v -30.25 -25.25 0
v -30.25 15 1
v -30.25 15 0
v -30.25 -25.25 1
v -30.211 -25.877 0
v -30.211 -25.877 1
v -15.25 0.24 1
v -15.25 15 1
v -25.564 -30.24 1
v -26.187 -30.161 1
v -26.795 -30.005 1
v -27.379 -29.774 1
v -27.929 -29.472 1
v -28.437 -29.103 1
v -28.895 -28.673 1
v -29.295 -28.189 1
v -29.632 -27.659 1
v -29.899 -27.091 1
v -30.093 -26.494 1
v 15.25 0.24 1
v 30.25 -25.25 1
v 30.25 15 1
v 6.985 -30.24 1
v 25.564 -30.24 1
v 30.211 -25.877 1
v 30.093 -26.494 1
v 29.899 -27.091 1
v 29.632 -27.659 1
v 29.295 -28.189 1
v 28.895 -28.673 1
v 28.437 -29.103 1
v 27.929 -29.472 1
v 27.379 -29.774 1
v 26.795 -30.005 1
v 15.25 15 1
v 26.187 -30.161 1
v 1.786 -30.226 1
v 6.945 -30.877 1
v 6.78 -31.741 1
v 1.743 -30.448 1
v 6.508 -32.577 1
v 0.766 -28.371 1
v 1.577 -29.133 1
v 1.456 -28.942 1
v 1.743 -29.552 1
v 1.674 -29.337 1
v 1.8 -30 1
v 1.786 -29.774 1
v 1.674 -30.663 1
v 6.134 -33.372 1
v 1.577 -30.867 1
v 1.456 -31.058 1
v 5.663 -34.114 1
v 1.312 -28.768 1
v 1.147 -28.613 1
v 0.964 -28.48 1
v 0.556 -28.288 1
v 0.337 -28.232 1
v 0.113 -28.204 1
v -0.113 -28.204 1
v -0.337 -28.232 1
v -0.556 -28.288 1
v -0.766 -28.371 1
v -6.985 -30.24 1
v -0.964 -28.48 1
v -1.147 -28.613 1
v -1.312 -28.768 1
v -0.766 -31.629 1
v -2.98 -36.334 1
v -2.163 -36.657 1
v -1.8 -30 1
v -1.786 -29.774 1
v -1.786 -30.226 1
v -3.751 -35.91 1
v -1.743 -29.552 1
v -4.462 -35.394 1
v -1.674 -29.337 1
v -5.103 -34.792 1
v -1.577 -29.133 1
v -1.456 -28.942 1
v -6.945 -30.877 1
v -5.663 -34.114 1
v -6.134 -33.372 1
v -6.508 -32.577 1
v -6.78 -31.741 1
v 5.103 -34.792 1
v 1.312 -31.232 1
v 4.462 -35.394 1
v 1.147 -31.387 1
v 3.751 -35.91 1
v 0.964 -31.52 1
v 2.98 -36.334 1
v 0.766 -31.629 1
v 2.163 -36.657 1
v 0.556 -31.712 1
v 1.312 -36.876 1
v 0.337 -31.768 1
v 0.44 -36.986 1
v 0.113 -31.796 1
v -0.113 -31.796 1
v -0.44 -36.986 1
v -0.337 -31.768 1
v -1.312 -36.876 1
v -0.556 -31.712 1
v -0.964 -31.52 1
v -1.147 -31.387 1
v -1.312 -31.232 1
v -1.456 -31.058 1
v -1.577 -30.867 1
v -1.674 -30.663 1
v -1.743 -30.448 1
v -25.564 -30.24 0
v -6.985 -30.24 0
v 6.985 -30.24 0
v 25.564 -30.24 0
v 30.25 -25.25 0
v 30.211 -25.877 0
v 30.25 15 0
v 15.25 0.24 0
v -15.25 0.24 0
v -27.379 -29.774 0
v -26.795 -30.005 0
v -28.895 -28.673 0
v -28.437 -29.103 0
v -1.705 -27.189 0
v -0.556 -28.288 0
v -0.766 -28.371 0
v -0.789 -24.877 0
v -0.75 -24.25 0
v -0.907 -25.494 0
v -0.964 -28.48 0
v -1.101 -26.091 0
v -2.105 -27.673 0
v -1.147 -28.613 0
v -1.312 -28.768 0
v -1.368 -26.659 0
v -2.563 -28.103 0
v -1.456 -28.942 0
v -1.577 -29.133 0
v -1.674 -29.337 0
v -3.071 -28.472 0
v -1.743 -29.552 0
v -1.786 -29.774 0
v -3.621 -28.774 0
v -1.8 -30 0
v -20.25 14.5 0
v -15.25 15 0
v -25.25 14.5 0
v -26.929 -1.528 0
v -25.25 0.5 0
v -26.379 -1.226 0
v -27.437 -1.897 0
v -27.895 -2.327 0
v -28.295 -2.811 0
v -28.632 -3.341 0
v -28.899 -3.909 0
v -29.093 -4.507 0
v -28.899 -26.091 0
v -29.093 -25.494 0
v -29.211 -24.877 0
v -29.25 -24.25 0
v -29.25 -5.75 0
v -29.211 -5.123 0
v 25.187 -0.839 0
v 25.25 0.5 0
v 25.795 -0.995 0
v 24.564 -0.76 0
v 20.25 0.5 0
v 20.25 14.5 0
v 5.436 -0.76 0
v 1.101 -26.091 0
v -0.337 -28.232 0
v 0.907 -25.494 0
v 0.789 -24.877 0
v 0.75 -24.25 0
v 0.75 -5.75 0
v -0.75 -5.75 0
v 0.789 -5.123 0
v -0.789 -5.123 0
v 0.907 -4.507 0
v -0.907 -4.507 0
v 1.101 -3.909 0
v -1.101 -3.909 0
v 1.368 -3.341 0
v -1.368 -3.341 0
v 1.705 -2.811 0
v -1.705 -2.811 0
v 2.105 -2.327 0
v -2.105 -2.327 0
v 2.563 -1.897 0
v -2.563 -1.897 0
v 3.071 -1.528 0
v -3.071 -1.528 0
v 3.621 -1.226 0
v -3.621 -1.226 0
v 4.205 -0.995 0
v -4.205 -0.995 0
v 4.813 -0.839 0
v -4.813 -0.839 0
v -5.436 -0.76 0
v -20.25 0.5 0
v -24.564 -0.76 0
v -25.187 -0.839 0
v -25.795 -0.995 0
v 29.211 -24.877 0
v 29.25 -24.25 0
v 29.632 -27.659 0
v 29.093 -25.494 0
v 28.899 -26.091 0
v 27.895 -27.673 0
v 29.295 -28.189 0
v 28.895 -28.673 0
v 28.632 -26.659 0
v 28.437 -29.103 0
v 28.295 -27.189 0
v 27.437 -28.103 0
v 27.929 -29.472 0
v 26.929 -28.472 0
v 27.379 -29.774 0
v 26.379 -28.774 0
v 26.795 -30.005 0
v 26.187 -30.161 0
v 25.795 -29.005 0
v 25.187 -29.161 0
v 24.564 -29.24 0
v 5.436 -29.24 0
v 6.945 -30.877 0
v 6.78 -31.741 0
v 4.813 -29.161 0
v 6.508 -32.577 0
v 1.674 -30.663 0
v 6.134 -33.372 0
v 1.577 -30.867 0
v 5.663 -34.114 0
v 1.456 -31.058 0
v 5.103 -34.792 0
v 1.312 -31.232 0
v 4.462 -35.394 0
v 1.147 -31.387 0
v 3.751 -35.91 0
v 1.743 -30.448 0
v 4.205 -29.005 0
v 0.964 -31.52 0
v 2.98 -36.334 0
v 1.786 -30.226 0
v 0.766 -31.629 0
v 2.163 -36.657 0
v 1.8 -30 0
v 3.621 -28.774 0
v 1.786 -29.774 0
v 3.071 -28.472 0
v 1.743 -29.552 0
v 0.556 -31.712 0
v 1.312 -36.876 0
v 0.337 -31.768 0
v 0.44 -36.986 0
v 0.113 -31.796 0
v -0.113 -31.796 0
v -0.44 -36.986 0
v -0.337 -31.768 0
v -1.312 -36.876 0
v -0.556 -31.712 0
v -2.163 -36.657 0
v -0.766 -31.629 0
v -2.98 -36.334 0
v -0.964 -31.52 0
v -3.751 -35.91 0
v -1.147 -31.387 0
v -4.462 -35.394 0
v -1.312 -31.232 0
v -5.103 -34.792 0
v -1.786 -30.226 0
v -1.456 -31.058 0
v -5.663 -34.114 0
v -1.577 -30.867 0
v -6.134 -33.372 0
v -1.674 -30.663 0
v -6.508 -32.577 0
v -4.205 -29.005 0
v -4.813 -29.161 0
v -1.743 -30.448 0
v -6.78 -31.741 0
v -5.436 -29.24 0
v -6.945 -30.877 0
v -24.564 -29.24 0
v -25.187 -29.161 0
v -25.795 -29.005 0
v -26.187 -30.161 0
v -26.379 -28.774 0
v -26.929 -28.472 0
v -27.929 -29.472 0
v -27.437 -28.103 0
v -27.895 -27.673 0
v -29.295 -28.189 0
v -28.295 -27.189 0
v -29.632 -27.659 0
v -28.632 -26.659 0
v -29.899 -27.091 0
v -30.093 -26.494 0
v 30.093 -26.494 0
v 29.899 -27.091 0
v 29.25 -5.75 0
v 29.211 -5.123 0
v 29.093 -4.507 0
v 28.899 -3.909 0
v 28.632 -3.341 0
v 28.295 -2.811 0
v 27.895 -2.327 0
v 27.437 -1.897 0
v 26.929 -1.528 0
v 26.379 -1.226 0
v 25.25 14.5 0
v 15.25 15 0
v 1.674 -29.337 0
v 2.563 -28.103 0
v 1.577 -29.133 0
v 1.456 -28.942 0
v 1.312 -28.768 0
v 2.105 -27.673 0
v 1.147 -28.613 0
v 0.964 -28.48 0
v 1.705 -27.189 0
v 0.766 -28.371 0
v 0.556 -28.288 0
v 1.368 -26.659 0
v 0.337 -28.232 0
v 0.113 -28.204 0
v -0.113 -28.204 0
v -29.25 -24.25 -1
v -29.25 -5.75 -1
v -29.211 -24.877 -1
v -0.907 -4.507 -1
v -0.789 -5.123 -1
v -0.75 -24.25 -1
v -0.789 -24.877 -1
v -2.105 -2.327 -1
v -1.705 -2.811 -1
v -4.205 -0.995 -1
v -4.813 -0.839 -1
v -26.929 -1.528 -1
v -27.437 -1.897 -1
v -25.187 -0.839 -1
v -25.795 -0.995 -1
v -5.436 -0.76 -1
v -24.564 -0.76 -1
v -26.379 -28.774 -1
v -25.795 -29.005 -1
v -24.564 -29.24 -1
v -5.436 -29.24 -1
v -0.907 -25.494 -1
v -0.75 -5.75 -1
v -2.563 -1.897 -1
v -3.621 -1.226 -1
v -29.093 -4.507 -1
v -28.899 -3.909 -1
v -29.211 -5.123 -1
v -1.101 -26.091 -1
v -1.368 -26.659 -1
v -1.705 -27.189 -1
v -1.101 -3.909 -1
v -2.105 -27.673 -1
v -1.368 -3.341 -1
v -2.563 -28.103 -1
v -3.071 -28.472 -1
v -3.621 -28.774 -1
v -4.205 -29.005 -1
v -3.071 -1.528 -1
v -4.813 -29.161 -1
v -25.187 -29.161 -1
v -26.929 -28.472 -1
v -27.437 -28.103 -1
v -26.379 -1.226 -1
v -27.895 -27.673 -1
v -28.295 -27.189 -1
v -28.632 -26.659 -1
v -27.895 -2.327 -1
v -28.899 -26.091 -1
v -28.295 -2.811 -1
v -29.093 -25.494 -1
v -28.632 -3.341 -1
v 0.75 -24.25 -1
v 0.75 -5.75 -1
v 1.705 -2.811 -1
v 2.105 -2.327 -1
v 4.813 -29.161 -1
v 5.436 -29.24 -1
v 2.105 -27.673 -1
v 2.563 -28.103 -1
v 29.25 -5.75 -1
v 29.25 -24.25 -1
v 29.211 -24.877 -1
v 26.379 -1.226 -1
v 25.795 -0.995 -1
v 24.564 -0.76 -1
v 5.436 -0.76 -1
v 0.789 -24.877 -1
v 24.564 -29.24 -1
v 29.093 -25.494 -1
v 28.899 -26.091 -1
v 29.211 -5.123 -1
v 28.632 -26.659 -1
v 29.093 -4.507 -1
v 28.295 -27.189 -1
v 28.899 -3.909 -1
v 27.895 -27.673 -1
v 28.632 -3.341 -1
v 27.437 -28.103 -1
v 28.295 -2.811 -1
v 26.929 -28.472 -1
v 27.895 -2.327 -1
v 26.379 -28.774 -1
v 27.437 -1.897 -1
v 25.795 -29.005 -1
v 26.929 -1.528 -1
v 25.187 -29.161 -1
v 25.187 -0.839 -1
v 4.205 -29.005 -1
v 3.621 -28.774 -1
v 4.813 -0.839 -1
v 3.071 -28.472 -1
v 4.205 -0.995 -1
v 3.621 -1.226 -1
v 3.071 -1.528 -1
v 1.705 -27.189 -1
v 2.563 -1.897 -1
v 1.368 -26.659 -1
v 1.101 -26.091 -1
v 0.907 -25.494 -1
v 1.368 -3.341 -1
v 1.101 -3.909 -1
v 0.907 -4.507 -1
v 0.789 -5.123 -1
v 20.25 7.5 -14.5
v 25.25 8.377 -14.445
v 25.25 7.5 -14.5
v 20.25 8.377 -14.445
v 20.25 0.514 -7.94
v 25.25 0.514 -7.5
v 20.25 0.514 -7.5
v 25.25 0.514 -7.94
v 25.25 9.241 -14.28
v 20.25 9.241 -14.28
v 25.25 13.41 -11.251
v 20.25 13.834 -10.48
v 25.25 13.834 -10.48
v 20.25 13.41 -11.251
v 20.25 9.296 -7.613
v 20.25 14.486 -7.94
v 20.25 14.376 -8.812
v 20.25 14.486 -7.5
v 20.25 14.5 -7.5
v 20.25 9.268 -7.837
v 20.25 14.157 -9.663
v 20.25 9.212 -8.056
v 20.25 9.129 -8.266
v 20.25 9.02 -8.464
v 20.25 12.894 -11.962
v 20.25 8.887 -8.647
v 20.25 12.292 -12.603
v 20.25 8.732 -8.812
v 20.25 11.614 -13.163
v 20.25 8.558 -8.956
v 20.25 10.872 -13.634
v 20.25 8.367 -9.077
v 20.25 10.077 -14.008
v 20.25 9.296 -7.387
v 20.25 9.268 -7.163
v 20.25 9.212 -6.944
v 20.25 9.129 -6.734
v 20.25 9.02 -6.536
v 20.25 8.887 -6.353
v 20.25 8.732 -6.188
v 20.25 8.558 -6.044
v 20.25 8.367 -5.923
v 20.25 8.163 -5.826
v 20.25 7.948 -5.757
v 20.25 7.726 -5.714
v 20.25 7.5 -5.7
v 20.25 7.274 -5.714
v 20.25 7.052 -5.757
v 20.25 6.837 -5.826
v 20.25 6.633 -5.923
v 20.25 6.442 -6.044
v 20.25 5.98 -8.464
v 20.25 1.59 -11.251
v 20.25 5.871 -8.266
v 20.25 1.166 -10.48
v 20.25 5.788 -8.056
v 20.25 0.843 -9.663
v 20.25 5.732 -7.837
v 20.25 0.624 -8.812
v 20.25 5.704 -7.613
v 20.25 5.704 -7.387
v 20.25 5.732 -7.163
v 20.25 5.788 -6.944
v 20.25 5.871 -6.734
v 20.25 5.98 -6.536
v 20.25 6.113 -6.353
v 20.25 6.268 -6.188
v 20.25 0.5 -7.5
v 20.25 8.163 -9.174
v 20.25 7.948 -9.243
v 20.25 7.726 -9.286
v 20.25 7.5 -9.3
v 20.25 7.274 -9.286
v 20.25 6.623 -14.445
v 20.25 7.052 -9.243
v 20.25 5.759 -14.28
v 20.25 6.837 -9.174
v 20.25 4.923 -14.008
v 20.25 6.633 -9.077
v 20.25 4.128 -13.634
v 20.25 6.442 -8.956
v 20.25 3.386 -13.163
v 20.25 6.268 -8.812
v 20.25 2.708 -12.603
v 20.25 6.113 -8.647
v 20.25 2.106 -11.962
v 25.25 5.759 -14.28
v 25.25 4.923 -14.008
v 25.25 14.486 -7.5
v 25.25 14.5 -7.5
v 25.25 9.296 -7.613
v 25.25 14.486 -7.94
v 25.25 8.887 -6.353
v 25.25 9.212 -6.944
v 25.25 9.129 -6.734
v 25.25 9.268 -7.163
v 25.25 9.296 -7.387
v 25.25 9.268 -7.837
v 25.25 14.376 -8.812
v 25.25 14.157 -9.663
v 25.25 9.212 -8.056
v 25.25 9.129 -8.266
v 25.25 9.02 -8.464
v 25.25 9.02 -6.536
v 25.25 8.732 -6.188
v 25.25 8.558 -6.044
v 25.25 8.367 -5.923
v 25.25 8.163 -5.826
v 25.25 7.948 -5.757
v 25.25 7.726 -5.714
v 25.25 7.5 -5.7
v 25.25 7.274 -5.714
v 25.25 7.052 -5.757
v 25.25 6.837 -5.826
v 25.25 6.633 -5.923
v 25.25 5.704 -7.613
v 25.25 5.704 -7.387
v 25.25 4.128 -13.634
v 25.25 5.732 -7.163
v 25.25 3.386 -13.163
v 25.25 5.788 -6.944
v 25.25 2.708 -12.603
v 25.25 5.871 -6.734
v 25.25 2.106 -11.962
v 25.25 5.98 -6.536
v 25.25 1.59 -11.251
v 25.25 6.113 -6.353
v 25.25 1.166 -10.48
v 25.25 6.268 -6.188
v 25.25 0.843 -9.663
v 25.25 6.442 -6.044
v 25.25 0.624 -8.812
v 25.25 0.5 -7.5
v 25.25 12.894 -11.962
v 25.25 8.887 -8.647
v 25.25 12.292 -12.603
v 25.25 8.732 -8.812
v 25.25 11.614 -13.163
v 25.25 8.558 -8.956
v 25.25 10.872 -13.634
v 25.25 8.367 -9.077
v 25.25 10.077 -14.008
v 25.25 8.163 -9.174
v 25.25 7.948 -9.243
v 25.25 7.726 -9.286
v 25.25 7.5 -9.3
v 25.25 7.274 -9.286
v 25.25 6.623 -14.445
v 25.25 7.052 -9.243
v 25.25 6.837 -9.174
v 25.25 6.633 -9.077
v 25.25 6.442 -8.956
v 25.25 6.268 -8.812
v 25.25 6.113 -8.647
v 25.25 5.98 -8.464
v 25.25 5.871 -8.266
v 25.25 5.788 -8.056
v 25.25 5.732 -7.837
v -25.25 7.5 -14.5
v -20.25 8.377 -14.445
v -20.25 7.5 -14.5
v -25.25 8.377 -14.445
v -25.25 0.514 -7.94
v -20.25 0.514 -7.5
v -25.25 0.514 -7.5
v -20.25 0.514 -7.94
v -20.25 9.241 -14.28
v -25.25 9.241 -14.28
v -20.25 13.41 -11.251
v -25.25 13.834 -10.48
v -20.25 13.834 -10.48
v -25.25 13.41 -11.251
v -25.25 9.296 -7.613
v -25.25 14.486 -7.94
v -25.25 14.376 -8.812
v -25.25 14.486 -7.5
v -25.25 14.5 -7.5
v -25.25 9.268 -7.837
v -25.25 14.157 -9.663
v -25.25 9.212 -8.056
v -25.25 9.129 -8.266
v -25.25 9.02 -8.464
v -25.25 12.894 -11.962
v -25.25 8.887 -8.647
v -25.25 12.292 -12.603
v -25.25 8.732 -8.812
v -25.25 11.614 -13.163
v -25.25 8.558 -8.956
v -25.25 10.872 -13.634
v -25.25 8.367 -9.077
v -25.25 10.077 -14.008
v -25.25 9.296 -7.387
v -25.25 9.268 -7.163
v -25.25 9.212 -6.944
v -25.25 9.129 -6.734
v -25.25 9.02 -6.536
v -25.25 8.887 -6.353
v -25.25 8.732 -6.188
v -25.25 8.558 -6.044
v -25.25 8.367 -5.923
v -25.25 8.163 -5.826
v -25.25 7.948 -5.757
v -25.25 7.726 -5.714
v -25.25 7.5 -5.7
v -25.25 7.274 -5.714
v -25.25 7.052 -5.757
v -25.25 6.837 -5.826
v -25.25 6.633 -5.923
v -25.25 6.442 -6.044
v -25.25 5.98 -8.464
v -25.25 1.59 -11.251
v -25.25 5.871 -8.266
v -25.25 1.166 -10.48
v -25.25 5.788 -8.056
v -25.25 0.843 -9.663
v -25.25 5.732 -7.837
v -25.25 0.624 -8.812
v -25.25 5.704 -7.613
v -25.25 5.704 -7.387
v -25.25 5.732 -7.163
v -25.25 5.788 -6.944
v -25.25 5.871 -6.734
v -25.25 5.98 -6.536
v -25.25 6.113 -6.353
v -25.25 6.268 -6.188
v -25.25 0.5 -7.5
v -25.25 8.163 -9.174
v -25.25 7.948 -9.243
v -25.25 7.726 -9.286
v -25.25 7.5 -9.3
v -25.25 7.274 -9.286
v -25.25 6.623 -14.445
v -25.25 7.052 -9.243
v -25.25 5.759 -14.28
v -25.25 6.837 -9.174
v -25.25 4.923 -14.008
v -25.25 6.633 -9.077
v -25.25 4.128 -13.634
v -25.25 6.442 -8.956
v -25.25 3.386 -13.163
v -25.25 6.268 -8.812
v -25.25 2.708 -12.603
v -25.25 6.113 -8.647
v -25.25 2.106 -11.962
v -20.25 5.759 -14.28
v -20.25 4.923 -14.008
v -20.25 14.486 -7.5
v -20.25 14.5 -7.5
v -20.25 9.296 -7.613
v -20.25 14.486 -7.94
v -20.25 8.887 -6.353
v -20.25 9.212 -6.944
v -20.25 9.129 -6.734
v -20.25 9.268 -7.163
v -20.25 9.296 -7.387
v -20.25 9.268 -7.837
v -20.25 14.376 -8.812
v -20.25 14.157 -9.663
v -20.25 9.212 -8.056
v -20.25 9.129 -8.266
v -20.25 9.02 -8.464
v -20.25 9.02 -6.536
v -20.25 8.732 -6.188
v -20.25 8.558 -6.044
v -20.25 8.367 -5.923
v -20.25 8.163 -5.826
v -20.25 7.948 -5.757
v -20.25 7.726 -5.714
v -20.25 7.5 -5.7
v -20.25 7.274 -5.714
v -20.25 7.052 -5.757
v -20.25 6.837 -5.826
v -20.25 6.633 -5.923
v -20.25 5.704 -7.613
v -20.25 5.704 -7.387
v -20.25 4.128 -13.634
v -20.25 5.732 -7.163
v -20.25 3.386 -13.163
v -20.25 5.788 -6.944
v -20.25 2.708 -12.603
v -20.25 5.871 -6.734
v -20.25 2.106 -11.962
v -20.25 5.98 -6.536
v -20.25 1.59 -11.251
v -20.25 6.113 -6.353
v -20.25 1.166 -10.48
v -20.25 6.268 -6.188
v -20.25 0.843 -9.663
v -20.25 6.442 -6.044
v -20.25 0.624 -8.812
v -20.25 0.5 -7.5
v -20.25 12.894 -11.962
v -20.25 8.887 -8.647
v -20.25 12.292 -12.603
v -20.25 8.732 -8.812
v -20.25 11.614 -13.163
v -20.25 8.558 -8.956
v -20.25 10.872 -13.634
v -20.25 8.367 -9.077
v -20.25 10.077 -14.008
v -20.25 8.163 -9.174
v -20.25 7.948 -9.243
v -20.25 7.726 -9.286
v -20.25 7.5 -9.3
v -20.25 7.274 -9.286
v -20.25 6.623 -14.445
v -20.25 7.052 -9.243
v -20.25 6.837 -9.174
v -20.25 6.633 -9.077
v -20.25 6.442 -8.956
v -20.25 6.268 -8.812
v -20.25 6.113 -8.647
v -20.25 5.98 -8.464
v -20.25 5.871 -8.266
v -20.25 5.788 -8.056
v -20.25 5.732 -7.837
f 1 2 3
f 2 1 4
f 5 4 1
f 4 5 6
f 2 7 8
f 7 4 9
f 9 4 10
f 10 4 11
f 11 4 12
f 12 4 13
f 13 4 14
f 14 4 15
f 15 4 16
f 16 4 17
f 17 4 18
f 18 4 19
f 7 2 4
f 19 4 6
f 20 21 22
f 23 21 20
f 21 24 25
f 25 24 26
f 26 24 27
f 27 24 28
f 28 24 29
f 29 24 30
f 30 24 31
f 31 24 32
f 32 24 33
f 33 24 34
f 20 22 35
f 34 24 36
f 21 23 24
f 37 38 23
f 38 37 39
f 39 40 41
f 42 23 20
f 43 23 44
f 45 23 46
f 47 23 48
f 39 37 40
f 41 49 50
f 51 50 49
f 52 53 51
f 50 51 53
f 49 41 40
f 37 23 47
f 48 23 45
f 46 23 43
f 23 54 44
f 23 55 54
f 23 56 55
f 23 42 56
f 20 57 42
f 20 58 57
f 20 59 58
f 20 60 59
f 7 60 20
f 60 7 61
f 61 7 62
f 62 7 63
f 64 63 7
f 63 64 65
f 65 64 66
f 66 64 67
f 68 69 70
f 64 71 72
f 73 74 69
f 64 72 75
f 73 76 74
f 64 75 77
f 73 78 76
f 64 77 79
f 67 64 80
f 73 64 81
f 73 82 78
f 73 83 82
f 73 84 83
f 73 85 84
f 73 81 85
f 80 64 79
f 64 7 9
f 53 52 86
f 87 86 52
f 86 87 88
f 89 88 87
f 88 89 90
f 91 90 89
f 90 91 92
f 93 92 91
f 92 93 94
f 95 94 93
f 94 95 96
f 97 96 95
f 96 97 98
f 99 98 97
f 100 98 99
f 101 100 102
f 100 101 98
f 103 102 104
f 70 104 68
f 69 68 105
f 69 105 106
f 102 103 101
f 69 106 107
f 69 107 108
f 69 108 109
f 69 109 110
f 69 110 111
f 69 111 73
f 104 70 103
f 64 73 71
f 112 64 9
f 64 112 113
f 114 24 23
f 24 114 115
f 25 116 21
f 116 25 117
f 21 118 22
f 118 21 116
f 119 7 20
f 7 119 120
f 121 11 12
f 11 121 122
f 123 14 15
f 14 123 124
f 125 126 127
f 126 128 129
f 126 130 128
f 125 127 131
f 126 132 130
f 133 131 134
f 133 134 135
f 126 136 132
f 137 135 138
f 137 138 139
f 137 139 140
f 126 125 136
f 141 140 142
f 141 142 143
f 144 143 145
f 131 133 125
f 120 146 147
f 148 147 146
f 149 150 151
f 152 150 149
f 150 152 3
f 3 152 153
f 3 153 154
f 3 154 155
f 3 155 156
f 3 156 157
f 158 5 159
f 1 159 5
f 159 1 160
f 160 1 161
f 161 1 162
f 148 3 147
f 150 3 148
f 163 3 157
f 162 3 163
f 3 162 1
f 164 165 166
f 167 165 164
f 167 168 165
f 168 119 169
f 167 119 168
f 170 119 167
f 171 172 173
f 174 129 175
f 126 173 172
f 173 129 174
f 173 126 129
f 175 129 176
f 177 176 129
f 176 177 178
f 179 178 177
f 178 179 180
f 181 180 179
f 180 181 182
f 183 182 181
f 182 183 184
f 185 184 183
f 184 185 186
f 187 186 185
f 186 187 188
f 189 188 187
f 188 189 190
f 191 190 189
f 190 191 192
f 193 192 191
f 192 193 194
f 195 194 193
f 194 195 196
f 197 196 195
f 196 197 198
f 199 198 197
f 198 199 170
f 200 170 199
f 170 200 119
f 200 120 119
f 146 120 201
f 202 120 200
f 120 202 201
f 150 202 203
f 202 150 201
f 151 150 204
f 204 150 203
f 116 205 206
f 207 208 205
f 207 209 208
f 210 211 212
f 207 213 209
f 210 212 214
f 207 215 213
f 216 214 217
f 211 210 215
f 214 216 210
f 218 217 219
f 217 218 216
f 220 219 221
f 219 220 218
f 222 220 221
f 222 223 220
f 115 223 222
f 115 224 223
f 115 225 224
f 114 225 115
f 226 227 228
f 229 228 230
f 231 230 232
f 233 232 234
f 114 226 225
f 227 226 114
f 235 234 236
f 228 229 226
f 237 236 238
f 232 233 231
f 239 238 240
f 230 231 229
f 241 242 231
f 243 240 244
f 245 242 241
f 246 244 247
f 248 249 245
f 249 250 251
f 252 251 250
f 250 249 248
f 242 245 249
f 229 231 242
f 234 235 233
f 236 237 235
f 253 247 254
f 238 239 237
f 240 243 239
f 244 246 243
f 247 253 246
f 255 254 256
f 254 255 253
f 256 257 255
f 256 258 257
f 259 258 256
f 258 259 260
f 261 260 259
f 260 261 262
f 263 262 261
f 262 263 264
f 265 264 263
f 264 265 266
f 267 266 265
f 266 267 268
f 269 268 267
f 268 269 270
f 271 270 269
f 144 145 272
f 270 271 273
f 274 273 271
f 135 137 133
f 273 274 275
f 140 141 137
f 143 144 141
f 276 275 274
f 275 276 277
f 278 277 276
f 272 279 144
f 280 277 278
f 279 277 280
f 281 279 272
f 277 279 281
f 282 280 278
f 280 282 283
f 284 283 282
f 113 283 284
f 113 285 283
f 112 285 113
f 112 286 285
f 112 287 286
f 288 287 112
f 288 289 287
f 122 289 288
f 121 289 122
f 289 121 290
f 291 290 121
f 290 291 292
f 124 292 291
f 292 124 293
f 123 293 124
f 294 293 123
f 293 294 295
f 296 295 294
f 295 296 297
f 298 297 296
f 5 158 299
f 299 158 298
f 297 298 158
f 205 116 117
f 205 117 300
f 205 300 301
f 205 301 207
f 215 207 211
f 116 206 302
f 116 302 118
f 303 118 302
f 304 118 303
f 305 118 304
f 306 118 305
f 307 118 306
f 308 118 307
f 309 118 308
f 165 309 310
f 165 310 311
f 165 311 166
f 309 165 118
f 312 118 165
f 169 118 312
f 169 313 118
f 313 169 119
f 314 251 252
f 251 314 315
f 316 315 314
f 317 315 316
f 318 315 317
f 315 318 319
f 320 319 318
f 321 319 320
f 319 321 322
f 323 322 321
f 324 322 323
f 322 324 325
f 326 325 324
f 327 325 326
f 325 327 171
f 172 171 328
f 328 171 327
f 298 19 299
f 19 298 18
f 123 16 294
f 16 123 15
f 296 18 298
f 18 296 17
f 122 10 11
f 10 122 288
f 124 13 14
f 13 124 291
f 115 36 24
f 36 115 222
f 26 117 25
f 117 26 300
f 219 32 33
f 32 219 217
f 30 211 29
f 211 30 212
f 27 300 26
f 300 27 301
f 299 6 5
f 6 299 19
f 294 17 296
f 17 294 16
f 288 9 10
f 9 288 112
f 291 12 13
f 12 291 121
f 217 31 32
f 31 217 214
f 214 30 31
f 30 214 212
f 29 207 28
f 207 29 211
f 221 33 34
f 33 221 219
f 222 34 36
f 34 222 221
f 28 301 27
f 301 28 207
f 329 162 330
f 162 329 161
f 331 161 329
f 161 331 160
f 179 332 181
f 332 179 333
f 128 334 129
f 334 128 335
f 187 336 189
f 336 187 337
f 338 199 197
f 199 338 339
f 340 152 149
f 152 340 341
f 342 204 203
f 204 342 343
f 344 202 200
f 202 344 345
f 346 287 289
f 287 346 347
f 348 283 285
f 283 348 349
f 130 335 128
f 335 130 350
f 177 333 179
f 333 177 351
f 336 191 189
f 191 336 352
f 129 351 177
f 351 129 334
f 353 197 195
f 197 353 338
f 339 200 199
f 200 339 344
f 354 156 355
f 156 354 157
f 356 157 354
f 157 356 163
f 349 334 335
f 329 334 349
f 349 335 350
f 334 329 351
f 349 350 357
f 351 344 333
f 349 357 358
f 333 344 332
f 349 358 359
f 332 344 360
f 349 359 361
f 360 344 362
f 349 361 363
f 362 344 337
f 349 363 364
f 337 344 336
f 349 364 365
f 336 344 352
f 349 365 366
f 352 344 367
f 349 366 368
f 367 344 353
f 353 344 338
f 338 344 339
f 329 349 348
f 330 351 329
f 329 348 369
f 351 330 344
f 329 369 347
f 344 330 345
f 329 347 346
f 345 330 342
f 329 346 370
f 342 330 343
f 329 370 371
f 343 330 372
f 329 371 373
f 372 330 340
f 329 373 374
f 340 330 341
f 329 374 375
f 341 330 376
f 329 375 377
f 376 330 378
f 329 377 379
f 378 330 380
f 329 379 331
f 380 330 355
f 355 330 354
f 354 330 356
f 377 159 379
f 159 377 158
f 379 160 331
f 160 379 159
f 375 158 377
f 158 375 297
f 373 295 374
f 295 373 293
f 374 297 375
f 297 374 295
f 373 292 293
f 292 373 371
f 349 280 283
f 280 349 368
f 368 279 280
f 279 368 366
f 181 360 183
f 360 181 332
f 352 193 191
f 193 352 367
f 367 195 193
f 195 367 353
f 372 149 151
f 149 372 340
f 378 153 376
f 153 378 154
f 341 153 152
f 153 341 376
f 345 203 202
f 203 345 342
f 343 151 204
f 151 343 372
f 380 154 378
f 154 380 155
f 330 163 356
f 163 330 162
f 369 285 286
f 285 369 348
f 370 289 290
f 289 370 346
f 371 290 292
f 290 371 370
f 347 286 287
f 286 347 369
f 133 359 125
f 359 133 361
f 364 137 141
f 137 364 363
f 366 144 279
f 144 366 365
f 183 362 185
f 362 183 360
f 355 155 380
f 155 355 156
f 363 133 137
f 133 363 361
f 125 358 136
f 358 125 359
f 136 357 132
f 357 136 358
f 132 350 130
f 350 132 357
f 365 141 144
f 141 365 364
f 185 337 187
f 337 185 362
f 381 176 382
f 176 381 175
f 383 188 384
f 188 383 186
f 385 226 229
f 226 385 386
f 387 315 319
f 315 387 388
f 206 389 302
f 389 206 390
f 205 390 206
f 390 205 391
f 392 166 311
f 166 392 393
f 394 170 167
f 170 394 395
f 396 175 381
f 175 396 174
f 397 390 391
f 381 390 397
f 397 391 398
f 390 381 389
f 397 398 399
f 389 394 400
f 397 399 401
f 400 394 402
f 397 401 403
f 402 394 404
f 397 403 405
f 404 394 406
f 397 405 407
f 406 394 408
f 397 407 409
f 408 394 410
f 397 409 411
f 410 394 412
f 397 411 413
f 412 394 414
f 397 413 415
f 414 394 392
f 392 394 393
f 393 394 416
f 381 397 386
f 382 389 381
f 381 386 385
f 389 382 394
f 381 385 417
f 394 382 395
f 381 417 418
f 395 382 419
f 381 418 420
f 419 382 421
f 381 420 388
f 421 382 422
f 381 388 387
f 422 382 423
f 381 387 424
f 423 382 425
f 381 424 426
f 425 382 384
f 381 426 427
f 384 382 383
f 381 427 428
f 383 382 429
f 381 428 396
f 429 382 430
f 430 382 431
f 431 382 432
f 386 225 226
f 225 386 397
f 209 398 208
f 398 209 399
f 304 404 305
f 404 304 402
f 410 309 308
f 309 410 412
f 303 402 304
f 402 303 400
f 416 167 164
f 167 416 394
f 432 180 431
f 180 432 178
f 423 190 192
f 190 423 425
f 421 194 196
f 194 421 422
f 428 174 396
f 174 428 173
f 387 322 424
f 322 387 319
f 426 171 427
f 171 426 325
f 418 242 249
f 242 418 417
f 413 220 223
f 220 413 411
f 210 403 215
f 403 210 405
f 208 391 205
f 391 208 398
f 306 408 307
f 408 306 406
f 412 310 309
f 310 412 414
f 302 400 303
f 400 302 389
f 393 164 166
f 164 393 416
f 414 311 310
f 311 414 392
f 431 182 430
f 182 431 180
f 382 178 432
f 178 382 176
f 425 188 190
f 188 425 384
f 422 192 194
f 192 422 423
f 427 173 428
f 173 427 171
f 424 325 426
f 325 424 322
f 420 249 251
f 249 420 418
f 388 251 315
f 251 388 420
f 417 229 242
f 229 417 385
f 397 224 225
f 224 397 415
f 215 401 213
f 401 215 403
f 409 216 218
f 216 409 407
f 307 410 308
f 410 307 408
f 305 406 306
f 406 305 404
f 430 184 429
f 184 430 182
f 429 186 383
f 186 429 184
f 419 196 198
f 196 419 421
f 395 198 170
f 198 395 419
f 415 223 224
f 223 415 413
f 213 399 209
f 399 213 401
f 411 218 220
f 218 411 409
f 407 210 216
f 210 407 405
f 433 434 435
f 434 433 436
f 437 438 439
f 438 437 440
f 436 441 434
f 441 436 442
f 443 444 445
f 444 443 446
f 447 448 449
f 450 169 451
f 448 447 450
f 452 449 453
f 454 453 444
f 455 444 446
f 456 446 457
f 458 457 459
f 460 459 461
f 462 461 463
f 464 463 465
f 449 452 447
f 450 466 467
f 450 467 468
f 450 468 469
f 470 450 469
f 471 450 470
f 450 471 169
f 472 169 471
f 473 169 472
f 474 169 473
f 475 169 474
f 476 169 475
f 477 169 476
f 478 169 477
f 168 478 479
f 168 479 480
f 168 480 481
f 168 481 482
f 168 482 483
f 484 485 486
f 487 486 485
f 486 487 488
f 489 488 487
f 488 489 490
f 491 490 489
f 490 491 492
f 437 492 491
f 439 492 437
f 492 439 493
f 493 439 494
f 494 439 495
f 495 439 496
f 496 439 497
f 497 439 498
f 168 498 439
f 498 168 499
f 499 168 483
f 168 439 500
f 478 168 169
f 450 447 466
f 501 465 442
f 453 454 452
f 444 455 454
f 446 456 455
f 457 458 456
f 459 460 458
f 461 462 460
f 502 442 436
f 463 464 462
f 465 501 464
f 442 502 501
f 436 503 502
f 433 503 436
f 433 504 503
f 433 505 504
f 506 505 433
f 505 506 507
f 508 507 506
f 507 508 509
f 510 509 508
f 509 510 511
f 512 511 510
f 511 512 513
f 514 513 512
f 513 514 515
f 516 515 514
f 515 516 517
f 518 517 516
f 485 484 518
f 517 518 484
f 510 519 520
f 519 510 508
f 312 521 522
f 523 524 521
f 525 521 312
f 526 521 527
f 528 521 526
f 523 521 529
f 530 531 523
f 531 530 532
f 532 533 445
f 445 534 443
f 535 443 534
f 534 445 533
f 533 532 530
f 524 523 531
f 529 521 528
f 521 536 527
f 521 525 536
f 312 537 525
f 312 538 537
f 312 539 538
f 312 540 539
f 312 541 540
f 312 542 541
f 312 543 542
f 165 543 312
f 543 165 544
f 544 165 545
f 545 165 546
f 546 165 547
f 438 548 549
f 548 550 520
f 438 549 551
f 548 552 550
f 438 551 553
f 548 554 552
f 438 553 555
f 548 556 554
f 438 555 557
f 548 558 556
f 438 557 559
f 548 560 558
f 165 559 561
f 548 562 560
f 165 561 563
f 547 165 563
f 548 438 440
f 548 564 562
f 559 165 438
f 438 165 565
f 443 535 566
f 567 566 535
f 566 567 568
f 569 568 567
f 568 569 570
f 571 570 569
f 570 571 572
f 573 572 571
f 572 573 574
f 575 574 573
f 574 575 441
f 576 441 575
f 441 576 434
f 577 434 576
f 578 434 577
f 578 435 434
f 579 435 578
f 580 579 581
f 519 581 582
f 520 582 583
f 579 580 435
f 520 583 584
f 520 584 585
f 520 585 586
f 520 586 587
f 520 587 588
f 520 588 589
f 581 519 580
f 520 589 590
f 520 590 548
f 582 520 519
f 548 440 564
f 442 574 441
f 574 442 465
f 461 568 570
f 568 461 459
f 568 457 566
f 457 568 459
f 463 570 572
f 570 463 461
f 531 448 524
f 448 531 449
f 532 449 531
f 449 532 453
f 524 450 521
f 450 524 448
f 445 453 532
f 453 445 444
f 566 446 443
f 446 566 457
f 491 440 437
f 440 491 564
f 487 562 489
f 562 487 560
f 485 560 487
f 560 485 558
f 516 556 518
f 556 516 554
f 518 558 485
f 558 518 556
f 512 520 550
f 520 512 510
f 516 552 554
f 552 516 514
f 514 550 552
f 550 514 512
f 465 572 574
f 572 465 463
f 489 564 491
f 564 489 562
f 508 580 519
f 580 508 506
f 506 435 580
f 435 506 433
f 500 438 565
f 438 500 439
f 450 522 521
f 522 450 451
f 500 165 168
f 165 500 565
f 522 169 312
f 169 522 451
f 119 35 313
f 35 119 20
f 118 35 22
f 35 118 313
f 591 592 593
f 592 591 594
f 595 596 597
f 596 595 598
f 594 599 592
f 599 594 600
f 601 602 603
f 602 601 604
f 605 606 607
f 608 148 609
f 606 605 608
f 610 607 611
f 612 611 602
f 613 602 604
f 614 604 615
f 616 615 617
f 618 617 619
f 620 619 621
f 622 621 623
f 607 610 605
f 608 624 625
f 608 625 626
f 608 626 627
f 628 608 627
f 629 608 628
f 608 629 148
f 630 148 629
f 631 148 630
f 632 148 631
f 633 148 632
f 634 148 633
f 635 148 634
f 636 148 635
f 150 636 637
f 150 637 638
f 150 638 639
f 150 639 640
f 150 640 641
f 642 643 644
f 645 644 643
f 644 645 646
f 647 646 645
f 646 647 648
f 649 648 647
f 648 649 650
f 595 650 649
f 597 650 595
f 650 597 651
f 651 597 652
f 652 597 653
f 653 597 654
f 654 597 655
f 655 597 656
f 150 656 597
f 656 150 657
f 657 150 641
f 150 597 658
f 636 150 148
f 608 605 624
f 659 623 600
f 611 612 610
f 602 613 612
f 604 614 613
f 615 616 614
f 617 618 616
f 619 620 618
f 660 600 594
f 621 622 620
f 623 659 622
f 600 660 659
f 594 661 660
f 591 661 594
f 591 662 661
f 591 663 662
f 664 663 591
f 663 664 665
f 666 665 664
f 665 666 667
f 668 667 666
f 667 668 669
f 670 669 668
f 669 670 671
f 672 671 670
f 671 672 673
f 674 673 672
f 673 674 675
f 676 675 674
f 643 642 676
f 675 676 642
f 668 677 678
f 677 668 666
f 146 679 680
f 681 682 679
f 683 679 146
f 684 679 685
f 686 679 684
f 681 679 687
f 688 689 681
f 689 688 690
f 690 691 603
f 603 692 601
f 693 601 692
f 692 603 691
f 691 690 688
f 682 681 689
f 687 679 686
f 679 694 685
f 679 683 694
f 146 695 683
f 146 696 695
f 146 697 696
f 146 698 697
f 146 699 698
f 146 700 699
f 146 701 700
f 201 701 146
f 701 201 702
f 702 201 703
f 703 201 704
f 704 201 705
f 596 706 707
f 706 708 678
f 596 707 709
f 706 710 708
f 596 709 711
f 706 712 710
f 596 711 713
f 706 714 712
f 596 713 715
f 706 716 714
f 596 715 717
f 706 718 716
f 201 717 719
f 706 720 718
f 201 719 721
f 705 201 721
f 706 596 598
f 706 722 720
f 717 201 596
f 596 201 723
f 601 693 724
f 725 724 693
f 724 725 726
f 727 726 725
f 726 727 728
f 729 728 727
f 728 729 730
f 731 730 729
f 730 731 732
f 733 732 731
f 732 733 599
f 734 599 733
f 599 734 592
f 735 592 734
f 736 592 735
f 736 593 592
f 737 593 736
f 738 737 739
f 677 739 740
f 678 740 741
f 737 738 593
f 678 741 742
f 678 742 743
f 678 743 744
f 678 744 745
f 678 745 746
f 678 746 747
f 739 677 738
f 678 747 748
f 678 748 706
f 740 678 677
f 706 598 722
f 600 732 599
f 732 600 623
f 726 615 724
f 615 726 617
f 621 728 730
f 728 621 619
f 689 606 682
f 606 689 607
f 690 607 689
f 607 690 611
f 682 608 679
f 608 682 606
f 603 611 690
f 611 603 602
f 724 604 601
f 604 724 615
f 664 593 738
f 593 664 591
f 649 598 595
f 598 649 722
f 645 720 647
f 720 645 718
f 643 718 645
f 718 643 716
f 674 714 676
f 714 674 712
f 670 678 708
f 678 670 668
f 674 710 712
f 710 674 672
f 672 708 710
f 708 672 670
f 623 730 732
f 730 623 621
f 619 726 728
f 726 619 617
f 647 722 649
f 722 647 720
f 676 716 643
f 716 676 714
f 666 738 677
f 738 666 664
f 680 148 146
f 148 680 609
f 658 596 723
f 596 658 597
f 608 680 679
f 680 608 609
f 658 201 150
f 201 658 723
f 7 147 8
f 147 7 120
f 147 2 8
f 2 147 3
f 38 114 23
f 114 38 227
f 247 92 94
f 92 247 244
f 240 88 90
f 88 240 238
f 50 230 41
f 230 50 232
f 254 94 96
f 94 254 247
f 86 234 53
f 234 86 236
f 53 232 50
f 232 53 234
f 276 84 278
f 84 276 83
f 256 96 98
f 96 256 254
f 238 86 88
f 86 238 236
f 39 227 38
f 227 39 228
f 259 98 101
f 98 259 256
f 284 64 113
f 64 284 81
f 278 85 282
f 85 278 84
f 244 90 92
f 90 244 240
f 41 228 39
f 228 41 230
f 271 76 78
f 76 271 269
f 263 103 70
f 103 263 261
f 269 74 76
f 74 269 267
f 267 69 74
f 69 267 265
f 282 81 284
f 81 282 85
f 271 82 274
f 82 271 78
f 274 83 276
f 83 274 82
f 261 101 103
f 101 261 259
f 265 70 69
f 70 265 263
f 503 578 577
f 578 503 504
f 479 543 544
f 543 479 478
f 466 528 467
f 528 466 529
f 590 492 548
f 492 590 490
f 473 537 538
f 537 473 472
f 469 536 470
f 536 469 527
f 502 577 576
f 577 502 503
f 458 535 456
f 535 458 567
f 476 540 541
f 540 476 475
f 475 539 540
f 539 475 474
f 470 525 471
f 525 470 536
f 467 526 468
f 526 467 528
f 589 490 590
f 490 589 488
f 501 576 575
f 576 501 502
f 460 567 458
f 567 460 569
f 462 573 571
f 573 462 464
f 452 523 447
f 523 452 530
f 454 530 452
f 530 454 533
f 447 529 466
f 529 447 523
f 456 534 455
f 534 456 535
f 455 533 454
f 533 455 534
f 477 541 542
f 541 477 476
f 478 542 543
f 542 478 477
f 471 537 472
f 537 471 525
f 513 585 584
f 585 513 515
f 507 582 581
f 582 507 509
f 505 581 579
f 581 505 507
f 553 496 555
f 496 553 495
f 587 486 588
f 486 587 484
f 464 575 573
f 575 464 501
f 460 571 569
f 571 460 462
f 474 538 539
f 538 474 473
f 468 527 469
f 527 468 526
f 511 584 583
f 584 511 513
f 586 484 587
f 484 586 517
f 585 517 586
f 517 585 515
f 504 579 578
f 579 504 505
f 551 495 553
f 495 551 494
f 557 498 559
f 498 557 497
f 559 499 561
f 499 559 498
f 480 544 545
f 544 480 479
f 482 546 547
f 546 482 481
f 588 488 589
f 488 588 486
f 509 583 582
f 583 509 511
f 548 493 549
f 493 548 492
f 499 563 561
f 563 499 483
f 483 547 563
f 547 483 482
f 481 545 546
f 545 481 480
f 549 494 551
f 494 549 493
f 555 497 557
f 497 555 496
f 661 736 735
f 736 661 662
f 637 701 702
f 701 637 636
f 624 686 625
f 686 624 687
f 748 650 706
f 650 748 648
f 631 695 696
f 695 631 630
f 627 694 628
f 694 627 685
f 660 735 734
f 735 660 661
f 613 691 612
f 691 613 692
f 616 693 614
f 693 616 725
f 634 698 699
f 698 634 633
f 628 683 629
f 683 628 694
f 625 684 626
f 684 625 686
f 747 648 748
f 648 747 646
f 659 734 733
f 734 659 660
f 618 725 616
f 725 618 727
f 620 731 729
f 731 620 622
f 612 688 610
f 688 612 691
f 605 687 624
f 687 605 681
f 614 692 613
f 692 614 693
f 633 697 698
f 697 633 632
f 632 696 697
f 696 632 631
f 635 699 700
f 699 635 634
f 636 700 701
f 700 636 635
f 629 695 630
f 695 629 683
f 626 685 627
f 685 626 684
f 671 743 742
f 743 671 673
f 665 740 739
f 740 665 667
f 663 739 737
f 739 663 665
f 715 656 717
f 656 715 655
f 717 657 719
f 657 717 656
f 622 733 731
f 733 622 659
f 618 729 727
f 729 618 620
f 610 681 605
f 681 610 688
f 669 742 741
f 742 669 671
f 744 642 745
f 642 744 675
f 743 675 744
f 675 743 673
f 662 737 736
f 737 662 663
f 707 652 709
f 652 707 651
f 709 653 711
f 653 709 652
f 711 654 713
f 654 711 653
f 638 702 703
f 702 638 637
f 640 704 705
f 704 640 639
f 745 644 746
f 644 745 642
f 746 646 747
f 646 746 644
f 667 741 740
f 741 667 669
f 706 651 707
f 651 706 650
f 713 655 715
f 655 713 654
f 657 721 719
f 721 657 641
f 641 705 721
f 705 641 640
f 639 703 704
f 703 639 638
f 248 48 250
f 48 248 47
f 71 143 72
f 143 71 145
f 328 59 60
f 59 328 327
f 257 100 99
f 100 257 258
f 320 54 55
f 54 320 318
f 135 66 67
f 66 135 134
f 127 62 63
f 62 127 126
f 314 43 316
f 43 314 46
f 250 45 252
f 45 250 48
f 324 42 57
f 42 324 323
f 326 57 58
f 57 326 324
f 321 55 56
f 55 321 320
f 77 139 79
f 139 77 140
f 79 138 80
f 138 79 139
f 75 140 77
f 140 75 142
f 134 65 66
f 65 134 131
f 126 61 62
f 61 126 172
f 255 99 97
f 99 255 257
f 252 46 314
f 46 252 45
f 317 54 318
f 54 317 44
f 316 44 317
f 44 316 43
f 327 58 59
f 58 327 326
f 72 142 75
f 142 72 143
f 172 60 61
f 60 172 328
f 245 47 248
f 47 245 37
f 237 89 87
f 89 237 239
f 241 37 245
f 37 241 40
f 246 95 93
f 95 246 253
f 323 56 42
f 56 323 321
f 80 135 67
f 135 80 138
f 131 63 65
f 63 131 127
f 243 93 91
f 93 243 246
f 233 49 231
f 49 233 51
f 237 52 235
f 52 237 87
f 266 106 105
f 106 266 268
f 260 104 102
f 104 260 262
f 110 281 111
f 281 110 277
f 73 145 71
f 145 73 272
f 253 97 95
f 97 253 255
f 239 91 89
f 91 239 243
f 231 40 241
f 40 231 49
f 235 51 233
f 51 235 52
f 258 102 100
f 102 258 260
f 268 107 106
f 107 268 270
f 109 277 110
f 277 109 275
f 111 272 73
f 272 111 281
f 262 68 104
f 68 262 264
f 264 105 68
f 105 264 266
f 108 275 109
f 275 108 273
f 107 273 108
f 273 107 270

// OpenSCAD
$fn = 50;


difference() {
	union() {
		translate(v = [0, -15.0000000000, 0]) {
			hull() {
				translate(v = [-25.2500000000, 10.2500000000, 0]) {
					cylinder(h = 1, r = 5);
				}
				translate(v = [25.2500000000, 10.2500000000, 0]) {
					cylinder(h = 1, r = 5);
				}
				translate(v = [-25.2500000000, -10.2500000000, 0]) {
					cylinder(h = 1, r = 5);
				}
				translate(v = [25.2500000000, -10.2500000000, 0]) {
					cylinder(h = 1, r = 5);
				}
			}
		}
		translate(v = [-15.0000000000, -15.0000000000, -1]) {
			hull() {
				translate(v = [-9.2500000000, 9.2500000000, 0]) {
					cylinder(h = 2, r = 5);
				}
				translate(v = [9.2500000000, 9.2500000000, 0]) {
					cylinder(h = 2, r = 5);
				}
				translate(v = [-9.2500000000, -9.2500000000, 0]) {
					cylinder(h = 2, r = 5);
				}
				translate(v = [9.2500000000, -9.2500000000, 0]) {
					cylinder(h = 2, r = 5);
				}
			}
		}
		translate(v = [15.0000000000, -15.0000000000, -1]) {
			hull() {
				translate(v = [-9.2500000000, 9.2500000000, 0]) {
					cylinder(h = 2, r = 5);
				}
				translate(v = [9.2500000000, 9.2500000000, 0]) {
					cylinder(h = 2, r = 5);
				}
				translate(v = [-9.2500000000, -9.2500000000, 0]) {
					cylinder(h = 2, r = 5);
				}
				translate(v = [9.2500000000, -9.2500000000, 0]) {
					cylinder(h = 2, r = 5);
				}
			}
		}
		translate(v = [20.2500000000, 7.5000000000, -7.5000000000]) {
			rotate(a = [0, 90, 0]) {
				cylinder(h = 5, r = 7.0000000000);
			}
		}
		translate(v = [20.2500000000, 0.5000000000, -7.5000000000]) {
			cube(size = [5, 14, 7.5000000000]);
		}
		translate(v = [15.2500000000, -15.0000000000, 0.0000000000]) {
			cube(size = [15, 30, 1]);
		}
		translate(v = [-25.2500000000, 7.5000000000, -7.5000000000]) {
			rotate(a = [0, 90, 0]) {
				cylinder(h = 5, r = 7.0000000000);
			}
		}
		translate(v = [-25.2500000000, 0.5000000000, -7.5000000000]) {
			cube(size = [5, 14, 7.5000000000]);
		}
		translate(v = [-30.2500000000, -15.0000000000, 0.0000000000]) {
			cube(size = [15, 30, 1]);
		}
		translate(v = [0, -30, 0.0000000000]) {
			cylinder(h = 1, r = 7.0000000000);
		}
	}
	union() {
		translate(v = [15.2500000000, 7.5000000000, -7.5000000000]) {
			rotate(a = [0, 90, 0]) {
				cylinder(h = 15, r = 1.8000000000);
			}
		}
		translate(v = [-30.2500000000, 7.5000000000, -7.5000000000]) {
			rotate(a = [0, 90, 0]) {
				cylinder(h = 15, r = 1.8000000000);
			}
		}
		translate(v = [0, -30, -100.0000000000]) {
			cylinder(h = 200, r = 1.8000000000);
		}
	}
}
